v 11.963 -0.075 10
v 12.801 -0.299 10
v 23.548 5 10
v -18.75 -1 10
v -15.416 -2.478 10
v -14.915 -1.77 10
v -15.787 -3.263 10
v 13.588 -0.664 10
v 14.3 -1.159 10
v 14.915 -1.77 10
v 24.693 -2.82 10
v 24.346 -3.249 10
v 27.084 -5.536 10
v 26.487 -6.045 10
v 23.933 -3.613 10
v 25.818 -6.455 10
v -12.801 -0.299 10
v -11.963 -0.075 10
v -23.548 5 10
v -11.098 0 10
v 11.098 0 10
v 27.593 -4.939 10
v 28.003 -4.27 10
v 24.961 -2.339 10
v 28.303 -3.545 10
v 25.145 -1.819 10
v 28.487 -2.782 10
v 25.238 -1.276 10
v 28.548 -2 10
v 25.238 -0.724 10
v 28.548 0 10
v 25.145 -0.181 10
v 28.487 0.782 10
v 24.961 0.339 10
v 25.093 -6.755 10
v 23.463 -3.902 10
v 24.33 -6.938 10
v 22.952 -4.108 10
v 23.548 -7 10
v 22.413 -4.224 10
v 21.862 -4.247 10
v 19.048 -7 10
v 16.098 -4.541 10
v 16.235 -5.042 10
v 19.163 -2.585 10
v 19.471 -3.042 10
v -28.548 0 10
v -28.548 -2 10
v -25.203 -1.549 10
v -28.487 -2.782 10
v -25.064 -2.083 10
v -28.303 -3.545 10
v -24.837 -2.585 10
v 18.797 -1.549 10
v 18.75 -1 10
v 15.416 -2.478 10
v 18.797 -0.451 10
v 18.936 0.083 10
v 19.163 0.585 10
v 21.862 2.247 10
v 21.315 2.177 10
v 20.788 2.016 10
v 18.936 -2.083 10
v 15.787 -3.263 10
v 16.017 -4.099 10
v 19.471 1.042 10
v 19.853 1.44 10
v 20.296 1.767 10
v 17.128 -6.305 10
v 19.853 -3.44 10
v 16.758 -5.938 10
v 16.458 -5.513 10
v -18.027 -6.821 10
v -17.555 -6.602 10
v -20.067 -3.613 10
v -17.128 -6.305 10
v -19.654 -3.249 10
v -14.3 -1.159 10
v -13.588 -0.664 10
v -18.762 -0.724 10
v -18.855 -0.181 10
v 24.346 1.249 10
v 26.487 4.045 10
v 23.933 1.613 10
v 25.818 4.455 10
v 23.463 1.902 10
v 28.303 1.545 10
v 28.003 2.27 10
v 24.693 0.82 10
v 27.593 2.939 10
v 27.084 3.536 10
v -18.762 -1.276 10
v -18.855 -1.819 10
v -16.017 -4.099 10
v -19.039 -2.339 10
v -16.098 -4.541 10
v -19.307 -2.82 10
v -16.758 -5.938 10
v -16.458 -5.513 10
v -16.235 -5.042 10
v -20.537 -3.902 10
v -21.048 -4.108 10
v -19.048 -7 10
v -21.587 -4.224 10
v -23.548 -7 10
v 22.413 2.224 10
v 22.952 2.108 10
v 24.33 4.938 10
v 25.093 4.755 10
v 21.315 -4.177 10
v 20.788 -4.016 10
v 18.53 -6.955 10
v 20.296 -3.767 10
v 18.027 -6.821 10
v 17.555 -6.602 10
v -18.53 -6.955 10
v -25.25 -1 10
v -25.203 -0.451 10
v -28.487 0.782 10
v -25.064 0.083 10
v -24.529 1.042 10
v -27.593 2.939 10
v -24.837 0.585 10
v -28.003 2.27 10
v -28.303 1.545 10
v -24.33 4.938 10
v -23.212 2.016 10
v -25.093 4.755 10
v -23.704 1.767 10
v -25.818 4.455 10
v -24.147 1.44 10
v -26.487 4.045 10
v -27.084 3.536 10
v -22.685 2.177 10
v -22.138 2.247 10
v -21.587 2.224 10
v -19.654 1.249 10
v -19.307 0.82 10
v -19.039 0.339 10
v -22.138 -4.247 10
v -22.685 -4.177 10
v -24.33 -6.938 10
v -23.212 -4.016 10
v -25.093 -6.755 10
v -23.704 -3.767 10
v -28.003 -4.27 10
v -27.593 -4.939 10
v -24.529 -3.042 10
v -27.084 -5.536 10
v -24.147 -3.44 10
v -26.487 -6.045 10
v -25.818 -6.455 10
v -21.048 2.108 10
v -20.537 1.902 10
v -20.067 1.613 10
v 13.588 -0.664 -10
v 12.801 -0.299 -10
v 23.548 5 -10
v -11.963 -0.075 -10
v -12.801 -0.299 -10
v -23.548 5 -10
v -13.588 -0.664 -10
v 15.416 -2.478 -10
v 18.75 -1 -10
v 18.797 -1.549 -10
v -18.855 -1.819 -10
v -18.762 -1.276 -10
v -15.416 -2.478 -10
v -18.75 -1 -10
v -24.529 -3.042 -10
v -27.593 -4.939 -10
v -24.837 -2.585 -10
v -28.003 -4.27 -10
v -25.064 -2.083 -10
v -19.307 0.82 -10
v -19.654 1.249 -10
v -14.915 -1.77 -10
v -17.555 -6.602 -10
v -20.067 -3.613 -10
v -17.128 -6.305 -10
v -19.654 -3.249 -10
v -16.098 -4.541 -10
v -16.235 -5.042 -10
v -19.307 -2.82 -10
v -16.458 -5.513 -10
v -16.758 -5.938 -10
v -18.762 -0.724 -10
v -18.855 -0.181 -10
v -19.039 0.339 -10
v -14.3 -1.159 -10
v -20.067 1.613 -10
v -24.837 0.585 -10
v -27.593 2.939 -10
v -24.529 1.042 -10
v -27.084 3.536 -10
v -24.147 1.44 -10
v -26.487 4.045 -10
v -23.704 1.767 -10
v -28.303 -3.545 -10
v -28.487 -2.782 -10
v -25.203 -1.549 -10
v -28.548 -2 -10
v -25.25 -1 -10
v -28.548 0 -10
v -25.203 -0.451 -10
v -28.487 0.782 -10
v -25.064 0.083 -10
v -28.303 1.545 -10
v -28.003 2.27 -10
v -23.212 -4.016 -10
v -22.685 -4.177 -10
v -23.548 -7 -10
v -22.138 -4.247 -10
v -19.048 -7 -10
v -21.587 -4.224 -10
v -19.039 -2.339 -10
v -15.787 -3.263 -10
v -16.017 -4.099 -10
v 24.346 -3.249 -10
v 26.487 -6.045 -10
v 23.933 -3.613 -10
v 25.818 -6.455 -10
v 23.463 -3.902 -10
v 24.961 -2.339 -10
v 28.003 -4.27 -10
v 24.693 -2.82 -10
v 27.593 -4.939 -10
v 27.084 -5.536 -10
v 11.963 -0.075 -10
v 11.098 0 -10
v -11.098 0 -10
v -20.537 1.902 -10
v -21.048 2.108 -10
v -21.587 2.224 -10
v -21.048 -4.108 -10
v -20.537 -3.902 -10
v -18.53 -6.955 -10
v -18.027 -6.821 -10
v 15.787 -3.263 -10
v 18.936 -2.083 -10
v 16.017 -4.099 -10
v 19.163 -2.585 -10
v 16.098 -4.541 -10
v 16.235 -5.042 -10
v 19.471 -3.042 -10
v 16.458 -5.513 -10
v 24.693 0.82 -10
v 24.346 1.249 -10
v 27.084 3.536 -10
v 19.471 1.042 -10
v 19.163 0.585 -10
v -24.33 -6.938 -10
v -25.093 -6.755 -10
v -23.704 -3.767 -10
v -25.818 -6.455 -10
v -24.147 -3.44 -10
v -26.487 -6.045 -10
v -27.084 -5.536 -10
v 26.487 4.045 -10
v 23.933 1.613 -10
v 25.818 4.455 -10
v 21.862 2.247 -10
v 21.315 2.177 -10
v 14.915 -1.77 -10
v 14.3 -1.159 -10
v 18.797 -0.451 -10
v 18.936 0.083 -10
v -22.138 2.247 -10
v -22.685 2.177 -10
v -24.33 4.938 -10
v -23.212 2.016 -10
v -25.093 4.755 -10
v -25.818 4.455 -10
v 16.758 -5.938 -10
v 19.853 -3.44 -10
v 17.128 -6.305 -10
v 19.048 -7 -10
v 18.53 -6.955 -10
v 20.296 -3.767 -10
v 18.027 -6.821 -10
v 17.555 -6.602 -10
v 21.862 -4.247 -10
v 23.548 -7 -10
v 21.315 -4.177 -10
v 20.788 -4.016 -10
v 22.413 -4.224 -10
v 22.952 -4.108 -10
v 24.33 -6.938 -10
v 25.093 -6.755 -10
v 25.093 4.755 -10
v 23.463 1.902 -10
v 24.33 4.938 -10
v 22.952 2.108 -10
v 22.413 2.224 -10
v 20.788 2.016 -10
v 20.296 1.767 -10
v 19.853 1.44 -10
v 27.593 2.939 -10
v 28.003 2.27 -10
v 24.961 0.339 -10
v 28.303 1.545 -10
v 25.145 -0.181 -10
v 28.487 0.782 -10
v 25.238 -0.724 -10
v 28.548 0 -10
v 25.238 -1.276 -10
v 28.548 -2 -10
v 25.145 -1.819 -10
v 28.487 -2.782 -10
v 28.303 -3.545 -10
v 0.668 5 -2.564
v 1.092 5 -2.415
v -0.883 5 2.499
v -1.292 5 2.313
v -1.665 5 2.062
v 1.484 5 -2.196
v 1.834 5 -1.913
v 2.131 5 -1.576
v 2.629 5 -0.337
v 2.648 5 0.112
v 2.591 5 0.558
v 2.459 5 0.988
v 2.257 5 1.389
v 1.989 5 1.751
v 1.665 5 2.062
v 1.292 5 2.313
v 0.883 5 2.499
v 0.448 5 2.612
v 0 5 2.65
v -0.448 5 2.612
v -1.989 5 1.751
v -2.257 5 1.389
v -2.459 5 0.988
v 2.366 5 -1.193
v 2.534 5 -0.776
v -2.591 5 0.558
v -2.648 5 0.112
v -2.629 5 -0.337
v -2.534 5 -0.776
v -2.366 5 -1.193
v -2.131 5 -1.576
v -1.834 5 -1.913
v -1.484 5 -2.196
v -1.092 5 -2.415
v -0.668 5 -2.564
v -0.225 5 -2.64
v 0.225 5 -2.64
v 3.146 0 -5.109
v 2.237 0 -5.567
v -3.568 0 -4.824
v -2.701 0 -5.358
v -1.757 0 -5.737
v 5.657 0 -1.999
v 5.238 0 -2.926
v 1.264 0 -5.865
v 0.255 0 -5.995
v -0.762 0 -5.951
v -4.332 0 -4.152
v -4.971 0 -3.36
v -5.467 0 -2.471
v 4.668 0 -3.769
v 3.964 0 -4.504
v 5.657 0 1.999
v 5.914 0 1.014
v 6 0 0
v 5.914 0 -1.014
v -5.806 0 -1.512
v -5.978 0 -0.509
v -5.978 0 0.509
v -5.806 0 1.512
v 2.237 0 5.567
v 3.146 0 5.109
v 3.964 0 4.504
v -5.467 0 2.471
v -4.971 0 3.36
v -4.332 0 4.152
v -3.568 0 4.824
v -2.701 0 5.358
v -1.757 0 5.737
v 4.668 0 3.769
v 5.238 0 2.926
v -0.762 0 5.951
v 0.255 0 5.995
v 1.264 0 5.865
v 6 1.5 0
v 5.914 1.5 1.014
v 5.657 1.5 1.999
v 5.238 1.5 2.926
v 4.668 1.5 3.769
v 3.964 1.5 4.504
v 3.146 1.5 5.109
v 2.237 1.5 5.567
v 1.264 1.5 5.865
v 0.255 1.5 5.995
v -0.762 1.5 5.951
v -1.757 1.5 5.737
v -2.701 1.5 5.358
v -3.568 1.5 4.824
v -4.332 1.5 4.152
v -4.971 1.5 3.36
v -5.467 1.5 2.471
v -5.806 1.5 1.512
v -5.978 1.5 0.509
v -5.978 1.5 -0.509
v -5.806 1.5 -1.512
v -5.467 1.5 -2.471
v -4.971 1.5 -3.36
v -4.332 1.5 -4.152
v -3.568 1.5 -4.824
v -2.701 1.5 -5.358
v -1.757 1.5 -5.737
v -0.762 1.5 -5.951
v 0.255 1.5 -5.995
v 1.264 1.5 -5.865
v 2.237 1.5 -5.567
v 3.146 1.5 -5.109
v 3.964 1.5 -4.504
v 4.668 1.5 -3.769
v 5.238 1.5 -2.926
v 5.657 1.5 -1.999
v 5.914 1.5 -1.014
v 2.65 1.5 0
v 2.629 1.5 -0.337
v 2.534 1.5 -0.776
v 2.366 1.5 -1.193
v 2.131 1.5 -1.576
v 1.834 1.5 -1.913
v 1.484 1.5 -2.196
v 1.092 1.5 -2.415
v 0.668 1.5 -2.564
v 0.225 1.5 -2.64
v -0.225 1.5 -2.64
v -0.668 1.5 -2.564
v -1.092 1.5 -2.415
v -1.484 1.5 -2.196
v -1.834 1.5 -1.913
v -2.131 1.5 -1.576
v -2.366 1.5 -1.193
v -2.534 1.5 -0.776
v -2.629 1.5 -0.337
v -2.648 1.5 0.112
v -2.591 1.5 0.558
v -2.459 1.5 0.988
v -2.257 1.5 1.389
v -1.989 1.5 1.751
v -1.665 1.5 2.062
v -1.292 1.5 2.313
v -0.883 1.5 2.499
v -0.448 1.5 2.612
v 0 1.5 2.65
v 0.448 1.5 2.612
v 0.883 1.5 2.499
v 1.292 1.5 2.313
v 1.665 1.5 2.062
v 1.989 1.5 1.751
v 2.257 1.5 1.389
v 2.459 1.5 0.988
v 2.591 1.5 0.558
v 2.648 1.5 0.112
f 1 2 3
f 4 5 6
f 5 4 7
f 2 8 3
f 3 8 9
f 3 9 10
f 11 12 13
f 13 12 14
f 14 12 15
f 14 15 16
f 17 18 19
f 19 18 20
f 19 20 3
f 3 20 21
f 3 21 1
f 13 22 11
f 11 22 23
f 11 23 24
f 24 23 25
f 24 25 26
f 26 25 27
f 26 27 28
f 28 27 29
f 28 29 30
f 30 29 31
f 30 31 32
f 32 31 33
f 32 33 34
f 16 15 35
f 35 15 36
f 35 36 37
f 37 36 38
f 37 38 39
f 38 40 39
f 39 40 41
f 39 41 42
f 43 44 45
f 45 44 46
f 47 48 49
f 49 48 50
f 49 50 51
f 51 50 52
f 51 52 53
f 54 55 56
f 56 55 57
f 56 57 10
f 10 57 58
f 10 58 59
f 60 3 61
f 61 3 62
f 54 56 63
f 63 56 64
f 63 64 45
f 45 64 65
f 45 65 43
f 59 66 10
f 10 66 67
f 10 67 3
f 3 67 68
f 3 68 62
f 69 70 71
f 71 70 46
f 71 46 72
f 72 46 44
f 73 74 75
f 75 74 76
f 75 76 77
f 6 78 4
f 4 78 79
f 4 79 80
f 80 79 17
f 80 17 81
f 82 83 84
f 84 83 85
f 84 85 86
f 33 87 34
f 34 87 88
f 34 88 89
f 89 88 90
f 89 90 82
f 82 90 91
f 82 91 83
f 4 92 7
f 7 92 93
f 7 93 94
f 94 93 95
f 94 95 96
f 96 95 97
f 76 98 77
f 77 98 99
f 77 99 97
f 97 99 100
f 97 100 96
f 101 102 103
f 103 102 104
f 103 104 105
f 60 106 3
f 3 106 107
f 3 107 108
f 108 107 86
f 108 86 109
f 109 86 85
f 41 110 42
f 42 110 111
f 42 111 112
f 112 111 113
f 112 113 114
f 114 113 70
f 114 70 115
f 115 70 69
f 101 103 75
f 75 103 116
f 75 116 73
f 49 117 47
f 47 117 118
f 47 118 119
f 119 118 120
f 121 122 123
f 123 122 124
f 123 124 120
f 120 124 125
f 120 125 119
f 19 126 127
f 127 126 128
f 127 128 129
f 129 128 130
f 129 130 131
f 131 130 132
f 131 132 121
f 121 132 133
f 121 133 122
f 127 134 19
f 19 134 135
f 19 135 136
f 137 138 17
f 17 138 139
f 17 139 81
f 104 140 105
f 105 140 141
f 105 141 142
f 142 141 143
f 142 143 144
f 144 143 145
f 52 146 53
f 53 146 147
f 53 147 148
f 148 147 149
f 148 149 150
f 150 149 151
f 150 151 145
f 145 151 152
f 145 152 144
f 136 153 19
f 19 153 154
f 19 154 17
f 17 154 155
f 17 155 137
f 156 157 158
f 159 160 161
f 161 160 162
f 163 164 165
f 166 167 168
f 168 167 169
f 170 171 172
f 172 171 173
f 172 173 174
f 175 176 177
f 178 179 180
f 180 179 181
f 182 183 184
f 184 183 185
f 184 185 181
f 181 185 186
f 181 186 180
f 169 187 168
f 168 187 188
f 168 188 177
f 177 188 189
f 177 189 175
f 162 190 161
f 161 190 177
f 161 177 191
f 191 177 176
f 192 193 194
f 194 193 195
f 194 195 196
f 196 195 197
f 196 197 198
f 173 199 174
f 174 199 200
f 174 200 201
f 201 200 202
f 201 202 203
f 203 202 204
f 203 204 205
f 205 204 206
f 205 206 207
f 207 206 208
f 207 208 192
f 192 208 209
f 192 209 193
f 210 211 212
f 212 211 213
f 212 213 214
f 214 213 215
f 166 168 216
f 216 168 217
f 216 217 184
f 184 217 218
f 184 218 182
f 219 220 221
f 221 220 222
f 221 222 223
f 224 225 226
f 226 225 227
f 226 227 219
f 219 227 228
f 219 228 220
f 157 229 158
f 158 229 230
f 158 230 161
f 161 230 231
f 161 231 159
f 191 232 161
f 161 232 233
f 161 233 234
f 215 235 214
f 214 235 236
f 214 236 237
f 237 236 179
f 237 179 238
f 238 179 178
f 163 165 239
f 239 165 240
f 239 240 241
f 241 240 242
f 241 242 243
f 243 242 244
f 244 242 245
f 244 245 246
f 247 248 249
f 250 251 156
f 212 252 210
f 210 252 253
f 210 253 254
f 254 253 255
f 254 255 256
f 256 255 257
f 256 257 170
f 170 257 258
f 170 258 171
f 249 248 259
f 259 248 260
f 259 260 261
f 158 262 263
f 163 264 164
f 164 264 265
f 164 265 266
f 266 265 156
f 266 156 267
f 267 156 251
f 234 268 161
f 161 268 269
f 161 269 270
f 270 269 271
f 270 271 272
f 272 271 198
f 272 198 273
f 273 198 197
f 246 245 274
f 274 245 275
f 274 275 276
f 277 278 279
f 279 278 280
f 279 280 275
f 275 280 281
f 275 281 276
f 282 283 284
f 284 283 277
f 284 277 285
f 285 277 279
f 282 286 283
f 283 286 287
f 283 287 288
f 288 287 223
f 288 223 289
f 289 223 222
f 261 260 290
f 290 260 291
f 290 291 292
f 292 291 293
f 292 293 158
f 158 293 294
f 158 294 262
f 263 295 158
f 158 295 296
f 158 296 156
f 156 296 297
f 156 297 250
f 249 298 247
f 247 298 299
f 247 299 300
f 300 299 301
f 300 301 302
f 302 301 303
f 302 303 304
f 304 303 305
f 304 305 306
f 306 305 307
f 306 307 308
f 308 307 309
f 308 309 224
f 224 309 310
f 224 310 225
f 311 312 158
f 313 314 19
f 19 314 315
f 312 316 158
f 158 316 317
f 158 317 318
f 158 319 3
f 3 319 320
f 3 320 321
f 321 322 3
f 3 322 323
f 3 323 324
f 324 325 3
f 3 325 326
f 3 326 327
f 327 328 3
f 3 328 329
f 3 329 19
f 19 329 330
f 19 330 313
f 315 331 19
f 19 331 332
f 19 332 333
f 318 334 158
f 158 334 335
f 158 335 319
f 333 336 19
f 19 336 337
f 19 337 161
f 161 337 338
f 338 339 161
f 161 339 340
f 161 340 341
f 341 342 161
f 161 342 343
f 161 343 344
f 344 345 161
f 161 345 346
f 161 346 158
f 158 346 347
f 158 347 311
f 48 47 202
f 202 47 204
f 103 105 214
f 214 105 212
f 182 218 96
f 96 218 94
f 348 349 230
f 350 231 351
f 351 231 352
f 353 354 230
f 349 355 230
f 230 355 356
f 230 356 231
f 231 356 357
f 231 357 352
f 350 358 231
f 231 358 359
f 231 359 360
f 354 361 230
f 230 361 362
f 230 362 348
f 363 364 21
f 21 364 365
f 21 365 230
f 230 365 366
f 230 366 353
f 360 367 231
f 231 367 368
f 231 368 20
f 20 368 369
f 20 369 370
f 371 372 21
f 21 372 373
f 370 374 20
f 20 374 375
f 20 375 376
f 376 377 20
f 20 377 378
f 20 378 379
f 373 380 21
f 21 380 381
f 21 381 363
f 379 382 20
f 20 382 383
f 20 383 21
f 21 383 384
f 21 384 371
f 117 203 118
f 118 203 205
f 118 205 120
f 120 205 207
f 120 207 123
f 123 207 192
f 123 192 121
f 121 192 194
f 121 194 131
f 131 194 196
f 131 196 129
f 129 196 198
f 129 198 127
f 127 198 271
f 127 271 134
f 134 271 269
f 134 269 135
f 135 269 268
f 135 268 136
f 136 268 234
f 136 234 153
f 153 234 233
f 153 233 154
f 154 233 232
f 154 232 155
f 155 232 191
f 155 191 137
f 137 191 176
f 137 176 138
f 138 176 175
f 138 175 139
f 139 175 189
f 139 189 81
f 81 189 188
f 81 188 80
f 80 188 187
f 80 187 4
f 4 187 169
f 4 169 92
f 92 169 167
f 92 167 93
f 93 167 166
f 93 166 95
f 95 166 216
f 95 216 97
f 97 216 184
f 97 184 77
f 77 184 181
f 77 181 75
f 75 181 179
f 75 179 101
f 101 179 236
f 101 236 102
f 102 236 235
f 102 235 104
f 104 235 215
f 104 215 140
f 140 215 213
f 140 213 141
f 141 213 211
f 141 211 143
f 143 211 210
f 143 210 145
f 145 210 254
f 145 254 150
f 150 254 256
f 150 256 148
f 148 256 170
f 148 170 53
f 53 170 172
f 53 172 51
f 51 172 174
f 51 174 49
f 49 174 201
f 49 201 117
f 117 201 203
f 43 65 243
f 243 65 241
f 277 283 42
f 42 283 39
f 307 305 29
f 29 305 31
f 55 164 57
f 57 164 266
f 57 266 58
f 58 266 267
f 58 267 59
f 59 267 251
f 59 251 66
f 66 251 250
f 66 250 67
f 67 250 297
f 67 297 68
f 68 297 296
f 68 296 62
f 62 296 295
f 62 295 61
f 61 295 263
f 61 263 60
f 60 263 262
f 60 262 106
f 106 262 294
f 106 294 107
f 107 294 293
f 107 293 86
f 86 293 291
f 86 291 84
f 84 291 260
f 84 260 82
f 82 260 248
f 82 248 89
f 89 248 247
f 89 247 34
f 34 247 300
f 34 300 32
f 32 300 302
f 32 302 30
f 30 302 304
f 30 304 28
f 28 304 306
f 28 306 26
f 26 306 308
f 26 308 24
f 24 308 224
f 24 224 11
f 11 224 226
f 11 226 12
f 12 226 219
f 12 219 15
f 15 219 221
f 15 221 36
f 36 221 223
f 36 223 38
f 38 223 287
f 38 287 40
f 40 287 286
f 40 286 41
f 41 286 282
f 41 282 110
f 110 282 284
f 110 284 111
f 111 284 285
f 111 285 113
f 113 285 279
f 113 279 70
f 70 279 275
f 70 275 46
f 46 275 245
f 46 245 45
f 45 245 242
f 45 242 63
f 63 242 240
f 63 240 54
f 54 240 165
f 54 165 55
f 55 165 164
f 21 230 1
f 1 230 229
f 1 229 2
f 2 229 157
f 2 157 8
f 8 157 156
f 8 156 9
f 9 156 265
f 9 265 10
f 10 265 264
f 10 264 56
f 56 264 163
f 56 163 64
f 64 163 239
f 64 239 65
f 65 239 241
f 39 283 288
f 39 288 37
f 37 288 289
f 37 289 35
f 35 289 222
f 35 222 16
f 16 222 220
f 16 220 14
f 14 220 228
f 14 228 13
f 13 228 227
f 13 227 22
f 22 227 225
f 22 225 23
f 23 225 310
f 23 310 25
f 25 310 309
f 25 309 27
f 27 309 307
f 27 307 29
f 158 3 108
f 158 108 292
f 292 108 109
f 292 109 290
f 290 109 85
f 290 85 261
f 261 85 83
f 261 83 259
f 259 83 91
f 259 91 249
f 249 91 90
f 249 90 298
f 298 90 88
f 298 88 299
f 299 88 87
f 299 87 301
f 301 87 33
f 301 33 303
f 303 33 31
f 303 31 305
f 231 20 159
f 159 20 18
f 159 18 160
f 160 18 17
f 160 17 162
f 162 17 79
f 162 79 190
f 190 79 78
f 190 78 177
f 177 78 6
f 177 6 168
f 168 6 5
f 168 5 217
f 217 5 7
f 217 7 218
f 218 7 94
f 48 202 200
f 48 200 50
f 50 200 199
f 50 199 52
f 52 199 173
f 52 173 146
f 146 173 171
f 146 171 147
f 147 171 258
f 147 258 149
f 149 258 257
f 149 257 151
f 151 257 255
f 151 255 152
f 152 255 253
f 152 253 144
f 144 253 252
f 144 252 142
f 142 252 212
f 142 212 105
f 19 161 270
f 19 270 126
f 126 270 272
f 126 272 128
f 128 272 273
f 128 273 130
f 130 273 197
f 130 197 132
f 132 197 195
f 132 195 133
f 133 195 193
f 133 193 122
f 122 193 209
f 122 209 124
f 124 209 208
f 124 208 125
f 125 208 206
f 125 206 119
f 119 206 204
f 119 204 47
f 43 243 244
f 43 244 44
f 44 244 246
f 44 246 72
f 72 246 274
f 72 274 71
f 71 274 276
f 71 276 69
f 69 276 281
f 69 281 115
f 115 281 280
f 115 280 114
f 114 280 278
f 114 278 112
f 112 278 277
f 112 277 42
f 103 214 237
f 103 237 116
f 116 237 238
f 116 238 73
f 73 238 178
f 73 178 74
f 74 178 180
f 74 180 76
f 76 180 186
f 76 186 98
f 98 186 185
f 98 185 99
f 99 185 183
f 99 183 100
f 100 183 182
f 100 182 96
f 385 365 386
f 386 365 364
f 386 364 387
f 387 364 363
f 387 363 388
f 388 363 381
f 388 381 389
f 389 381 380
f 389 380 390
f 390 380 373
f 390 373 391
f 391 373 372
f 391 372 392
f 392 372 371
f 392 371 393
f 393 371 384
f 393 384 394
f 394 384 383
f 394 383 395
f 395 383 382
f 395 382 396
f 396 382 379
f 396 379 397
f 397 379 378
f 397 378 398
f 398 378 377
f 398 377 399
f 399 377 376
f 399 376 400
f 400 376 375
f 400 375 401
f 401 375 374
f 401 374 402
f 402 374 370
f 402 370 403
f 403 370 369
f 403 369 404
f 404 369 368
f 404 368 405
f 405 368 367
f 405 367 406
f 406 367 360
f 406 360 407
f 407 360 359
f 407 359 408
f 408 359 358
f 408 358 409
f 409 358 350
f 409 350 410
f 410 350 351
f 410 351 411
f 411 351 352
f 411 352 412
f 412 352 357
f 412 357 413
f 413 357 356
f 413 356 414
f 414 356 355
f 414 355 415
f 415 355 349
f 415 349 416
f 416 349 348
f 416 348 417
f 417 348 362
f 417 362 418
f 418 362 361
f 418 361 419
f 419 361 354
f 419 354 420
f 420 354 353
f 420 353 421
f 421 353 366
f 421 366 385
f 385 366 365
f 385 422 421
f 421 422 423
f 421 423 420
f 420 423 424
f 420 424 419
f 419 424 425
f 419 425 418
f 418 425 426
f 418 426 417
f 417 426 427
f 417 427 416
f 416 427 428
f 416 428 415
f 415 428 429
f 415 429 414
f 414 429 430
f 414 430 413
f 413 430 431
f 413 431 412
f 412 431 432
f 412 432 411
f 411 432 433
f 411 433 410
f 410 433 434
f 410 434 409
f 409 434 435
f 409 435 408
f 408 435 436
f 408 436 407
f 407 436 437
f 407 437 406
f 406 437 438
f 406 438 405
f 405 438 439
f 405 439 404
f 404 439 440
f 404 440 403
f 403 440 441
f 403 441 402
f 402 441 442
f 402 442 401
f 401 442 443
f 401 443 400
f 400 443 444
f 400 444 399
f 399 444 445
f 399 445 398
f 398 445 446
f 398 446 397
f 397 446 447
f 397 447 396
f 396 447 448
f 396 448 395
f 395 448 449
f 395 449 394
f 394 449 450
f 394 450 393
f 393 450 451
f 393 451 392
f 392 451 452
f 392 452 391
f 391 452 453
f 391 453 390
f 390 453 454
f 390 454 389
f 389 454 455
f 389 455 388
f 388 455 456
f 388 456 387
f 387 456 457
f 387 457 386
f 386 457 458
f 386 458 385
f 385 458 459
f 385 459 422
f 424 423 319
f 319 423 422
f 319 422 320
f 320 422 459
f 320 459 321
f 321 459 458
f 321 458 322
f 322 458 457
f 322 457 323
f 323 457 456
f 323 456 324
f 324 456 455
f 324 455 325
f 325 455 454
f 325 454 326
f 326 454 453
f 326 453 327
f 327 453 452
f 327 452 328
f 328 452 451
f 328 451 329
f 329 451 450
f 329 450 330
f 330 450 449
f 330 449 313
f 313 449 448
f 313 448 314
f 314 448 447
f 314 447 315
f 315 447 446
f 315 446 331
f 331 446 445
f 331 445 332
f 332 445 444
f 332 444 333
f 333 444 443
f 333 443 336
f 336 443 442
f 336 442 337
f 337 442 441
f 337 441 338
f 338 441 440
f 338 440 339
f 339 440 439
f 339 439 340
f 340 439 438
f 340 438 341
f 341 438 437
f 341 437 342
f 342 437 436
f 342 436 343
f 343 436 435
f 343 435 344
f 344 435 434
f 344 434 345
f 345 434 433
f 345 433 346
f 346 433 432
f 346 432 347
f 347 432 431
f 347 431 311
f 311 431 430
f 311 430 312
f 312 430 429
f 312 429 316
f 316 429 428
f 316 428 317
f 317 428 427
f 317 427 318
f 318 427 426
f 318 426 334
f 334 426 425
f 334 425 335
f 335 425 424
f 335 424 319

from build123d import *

# Parameters (mm, degrees)
ESQUISSE1_R             = 3.25
BOSS_EXTRU_1_DEPTH      = 10
CONG_1_R                = 5
CONG_2_R                = 3
ESQUISSE2_R             = 6
ENL_V_MAT_EXTRU_1_DEPTH = 1.5
ESQUISSE3_R             = 2.65
ENL_V_MAT_EXTRU_2_DEPTH = 13


with BuildPart() as part:
    # Esquisse1 → Boss.-Extru.1 (new body, symmetric)
    with BuildSketch(Plane.XY):
        Polygon((0, 0), (-15.265735364, 0), (-16.548069585, -7), (-28.548069585, -7), (-28.548069585, 5), (0, 5), align=None)
        with Locations((-22, -1)):
            Circle(ESQUISSE1_R, mode=Mode.SUBTRACT)
    boss_extru_1 = extrude(amount=BOSS_EXTRU_1_DEPTH, both=True)

    # Symétrie1: Boss.-Extru.1 across plane
    add(boss_extru_1.mirror(Plane(origin=(0, 5, 10), x_dir=(0, 0, 1), z_dir=(-1, 0, 0))))

    # Congé1
    cong_1_edges = [part.edges().sort_by_distance(p)[0] for p in [
        (-15.265735364, 0, 0),
        (-28.548069585, -7, 0),
        (-28.548069585, 5, 0),
        (15.265735364, 0, 0),
        (28.548069585, -7, 0),
        (28.548069585, 5, 0),
    ]]
    fillet(cong_1_edges, radius=CONG_1_R)

    # Congé2
    cong_2_edges = [part.edges().sort_by_distance(p)[0] for p in [
        (-16.548069585, -7, 0),
        (16.548069585, -7, 0),
    ]]
    fillet(cong_2_edges, radius=CONG_2_R)

    # Esquisse2 → Enlèv. mat.-Extru.1 (cut)
    with BuildSketch(Plane.XZ):
        Circle(ESQUISSE2_R)
    extrude(amount=-ENL_V_MAT_EXTRU_1_DEPTH, mode=Mode.SUBTRACT)

    # Esquisse3 → Enlèv. mat.-Extru.2 (cut, through all)
    with BuildSketch(Plane(origin=(0, 5, 0), x_dir=(1, 0, 0), z_dir=(0, 1, 0))):
        Circle(ESQUISSE3_R)
    extrude(amount=-ENL_V_MAT_EXTRU_2_DEPTH, mode=Mode.SUBTRACT)


solid = part.part
